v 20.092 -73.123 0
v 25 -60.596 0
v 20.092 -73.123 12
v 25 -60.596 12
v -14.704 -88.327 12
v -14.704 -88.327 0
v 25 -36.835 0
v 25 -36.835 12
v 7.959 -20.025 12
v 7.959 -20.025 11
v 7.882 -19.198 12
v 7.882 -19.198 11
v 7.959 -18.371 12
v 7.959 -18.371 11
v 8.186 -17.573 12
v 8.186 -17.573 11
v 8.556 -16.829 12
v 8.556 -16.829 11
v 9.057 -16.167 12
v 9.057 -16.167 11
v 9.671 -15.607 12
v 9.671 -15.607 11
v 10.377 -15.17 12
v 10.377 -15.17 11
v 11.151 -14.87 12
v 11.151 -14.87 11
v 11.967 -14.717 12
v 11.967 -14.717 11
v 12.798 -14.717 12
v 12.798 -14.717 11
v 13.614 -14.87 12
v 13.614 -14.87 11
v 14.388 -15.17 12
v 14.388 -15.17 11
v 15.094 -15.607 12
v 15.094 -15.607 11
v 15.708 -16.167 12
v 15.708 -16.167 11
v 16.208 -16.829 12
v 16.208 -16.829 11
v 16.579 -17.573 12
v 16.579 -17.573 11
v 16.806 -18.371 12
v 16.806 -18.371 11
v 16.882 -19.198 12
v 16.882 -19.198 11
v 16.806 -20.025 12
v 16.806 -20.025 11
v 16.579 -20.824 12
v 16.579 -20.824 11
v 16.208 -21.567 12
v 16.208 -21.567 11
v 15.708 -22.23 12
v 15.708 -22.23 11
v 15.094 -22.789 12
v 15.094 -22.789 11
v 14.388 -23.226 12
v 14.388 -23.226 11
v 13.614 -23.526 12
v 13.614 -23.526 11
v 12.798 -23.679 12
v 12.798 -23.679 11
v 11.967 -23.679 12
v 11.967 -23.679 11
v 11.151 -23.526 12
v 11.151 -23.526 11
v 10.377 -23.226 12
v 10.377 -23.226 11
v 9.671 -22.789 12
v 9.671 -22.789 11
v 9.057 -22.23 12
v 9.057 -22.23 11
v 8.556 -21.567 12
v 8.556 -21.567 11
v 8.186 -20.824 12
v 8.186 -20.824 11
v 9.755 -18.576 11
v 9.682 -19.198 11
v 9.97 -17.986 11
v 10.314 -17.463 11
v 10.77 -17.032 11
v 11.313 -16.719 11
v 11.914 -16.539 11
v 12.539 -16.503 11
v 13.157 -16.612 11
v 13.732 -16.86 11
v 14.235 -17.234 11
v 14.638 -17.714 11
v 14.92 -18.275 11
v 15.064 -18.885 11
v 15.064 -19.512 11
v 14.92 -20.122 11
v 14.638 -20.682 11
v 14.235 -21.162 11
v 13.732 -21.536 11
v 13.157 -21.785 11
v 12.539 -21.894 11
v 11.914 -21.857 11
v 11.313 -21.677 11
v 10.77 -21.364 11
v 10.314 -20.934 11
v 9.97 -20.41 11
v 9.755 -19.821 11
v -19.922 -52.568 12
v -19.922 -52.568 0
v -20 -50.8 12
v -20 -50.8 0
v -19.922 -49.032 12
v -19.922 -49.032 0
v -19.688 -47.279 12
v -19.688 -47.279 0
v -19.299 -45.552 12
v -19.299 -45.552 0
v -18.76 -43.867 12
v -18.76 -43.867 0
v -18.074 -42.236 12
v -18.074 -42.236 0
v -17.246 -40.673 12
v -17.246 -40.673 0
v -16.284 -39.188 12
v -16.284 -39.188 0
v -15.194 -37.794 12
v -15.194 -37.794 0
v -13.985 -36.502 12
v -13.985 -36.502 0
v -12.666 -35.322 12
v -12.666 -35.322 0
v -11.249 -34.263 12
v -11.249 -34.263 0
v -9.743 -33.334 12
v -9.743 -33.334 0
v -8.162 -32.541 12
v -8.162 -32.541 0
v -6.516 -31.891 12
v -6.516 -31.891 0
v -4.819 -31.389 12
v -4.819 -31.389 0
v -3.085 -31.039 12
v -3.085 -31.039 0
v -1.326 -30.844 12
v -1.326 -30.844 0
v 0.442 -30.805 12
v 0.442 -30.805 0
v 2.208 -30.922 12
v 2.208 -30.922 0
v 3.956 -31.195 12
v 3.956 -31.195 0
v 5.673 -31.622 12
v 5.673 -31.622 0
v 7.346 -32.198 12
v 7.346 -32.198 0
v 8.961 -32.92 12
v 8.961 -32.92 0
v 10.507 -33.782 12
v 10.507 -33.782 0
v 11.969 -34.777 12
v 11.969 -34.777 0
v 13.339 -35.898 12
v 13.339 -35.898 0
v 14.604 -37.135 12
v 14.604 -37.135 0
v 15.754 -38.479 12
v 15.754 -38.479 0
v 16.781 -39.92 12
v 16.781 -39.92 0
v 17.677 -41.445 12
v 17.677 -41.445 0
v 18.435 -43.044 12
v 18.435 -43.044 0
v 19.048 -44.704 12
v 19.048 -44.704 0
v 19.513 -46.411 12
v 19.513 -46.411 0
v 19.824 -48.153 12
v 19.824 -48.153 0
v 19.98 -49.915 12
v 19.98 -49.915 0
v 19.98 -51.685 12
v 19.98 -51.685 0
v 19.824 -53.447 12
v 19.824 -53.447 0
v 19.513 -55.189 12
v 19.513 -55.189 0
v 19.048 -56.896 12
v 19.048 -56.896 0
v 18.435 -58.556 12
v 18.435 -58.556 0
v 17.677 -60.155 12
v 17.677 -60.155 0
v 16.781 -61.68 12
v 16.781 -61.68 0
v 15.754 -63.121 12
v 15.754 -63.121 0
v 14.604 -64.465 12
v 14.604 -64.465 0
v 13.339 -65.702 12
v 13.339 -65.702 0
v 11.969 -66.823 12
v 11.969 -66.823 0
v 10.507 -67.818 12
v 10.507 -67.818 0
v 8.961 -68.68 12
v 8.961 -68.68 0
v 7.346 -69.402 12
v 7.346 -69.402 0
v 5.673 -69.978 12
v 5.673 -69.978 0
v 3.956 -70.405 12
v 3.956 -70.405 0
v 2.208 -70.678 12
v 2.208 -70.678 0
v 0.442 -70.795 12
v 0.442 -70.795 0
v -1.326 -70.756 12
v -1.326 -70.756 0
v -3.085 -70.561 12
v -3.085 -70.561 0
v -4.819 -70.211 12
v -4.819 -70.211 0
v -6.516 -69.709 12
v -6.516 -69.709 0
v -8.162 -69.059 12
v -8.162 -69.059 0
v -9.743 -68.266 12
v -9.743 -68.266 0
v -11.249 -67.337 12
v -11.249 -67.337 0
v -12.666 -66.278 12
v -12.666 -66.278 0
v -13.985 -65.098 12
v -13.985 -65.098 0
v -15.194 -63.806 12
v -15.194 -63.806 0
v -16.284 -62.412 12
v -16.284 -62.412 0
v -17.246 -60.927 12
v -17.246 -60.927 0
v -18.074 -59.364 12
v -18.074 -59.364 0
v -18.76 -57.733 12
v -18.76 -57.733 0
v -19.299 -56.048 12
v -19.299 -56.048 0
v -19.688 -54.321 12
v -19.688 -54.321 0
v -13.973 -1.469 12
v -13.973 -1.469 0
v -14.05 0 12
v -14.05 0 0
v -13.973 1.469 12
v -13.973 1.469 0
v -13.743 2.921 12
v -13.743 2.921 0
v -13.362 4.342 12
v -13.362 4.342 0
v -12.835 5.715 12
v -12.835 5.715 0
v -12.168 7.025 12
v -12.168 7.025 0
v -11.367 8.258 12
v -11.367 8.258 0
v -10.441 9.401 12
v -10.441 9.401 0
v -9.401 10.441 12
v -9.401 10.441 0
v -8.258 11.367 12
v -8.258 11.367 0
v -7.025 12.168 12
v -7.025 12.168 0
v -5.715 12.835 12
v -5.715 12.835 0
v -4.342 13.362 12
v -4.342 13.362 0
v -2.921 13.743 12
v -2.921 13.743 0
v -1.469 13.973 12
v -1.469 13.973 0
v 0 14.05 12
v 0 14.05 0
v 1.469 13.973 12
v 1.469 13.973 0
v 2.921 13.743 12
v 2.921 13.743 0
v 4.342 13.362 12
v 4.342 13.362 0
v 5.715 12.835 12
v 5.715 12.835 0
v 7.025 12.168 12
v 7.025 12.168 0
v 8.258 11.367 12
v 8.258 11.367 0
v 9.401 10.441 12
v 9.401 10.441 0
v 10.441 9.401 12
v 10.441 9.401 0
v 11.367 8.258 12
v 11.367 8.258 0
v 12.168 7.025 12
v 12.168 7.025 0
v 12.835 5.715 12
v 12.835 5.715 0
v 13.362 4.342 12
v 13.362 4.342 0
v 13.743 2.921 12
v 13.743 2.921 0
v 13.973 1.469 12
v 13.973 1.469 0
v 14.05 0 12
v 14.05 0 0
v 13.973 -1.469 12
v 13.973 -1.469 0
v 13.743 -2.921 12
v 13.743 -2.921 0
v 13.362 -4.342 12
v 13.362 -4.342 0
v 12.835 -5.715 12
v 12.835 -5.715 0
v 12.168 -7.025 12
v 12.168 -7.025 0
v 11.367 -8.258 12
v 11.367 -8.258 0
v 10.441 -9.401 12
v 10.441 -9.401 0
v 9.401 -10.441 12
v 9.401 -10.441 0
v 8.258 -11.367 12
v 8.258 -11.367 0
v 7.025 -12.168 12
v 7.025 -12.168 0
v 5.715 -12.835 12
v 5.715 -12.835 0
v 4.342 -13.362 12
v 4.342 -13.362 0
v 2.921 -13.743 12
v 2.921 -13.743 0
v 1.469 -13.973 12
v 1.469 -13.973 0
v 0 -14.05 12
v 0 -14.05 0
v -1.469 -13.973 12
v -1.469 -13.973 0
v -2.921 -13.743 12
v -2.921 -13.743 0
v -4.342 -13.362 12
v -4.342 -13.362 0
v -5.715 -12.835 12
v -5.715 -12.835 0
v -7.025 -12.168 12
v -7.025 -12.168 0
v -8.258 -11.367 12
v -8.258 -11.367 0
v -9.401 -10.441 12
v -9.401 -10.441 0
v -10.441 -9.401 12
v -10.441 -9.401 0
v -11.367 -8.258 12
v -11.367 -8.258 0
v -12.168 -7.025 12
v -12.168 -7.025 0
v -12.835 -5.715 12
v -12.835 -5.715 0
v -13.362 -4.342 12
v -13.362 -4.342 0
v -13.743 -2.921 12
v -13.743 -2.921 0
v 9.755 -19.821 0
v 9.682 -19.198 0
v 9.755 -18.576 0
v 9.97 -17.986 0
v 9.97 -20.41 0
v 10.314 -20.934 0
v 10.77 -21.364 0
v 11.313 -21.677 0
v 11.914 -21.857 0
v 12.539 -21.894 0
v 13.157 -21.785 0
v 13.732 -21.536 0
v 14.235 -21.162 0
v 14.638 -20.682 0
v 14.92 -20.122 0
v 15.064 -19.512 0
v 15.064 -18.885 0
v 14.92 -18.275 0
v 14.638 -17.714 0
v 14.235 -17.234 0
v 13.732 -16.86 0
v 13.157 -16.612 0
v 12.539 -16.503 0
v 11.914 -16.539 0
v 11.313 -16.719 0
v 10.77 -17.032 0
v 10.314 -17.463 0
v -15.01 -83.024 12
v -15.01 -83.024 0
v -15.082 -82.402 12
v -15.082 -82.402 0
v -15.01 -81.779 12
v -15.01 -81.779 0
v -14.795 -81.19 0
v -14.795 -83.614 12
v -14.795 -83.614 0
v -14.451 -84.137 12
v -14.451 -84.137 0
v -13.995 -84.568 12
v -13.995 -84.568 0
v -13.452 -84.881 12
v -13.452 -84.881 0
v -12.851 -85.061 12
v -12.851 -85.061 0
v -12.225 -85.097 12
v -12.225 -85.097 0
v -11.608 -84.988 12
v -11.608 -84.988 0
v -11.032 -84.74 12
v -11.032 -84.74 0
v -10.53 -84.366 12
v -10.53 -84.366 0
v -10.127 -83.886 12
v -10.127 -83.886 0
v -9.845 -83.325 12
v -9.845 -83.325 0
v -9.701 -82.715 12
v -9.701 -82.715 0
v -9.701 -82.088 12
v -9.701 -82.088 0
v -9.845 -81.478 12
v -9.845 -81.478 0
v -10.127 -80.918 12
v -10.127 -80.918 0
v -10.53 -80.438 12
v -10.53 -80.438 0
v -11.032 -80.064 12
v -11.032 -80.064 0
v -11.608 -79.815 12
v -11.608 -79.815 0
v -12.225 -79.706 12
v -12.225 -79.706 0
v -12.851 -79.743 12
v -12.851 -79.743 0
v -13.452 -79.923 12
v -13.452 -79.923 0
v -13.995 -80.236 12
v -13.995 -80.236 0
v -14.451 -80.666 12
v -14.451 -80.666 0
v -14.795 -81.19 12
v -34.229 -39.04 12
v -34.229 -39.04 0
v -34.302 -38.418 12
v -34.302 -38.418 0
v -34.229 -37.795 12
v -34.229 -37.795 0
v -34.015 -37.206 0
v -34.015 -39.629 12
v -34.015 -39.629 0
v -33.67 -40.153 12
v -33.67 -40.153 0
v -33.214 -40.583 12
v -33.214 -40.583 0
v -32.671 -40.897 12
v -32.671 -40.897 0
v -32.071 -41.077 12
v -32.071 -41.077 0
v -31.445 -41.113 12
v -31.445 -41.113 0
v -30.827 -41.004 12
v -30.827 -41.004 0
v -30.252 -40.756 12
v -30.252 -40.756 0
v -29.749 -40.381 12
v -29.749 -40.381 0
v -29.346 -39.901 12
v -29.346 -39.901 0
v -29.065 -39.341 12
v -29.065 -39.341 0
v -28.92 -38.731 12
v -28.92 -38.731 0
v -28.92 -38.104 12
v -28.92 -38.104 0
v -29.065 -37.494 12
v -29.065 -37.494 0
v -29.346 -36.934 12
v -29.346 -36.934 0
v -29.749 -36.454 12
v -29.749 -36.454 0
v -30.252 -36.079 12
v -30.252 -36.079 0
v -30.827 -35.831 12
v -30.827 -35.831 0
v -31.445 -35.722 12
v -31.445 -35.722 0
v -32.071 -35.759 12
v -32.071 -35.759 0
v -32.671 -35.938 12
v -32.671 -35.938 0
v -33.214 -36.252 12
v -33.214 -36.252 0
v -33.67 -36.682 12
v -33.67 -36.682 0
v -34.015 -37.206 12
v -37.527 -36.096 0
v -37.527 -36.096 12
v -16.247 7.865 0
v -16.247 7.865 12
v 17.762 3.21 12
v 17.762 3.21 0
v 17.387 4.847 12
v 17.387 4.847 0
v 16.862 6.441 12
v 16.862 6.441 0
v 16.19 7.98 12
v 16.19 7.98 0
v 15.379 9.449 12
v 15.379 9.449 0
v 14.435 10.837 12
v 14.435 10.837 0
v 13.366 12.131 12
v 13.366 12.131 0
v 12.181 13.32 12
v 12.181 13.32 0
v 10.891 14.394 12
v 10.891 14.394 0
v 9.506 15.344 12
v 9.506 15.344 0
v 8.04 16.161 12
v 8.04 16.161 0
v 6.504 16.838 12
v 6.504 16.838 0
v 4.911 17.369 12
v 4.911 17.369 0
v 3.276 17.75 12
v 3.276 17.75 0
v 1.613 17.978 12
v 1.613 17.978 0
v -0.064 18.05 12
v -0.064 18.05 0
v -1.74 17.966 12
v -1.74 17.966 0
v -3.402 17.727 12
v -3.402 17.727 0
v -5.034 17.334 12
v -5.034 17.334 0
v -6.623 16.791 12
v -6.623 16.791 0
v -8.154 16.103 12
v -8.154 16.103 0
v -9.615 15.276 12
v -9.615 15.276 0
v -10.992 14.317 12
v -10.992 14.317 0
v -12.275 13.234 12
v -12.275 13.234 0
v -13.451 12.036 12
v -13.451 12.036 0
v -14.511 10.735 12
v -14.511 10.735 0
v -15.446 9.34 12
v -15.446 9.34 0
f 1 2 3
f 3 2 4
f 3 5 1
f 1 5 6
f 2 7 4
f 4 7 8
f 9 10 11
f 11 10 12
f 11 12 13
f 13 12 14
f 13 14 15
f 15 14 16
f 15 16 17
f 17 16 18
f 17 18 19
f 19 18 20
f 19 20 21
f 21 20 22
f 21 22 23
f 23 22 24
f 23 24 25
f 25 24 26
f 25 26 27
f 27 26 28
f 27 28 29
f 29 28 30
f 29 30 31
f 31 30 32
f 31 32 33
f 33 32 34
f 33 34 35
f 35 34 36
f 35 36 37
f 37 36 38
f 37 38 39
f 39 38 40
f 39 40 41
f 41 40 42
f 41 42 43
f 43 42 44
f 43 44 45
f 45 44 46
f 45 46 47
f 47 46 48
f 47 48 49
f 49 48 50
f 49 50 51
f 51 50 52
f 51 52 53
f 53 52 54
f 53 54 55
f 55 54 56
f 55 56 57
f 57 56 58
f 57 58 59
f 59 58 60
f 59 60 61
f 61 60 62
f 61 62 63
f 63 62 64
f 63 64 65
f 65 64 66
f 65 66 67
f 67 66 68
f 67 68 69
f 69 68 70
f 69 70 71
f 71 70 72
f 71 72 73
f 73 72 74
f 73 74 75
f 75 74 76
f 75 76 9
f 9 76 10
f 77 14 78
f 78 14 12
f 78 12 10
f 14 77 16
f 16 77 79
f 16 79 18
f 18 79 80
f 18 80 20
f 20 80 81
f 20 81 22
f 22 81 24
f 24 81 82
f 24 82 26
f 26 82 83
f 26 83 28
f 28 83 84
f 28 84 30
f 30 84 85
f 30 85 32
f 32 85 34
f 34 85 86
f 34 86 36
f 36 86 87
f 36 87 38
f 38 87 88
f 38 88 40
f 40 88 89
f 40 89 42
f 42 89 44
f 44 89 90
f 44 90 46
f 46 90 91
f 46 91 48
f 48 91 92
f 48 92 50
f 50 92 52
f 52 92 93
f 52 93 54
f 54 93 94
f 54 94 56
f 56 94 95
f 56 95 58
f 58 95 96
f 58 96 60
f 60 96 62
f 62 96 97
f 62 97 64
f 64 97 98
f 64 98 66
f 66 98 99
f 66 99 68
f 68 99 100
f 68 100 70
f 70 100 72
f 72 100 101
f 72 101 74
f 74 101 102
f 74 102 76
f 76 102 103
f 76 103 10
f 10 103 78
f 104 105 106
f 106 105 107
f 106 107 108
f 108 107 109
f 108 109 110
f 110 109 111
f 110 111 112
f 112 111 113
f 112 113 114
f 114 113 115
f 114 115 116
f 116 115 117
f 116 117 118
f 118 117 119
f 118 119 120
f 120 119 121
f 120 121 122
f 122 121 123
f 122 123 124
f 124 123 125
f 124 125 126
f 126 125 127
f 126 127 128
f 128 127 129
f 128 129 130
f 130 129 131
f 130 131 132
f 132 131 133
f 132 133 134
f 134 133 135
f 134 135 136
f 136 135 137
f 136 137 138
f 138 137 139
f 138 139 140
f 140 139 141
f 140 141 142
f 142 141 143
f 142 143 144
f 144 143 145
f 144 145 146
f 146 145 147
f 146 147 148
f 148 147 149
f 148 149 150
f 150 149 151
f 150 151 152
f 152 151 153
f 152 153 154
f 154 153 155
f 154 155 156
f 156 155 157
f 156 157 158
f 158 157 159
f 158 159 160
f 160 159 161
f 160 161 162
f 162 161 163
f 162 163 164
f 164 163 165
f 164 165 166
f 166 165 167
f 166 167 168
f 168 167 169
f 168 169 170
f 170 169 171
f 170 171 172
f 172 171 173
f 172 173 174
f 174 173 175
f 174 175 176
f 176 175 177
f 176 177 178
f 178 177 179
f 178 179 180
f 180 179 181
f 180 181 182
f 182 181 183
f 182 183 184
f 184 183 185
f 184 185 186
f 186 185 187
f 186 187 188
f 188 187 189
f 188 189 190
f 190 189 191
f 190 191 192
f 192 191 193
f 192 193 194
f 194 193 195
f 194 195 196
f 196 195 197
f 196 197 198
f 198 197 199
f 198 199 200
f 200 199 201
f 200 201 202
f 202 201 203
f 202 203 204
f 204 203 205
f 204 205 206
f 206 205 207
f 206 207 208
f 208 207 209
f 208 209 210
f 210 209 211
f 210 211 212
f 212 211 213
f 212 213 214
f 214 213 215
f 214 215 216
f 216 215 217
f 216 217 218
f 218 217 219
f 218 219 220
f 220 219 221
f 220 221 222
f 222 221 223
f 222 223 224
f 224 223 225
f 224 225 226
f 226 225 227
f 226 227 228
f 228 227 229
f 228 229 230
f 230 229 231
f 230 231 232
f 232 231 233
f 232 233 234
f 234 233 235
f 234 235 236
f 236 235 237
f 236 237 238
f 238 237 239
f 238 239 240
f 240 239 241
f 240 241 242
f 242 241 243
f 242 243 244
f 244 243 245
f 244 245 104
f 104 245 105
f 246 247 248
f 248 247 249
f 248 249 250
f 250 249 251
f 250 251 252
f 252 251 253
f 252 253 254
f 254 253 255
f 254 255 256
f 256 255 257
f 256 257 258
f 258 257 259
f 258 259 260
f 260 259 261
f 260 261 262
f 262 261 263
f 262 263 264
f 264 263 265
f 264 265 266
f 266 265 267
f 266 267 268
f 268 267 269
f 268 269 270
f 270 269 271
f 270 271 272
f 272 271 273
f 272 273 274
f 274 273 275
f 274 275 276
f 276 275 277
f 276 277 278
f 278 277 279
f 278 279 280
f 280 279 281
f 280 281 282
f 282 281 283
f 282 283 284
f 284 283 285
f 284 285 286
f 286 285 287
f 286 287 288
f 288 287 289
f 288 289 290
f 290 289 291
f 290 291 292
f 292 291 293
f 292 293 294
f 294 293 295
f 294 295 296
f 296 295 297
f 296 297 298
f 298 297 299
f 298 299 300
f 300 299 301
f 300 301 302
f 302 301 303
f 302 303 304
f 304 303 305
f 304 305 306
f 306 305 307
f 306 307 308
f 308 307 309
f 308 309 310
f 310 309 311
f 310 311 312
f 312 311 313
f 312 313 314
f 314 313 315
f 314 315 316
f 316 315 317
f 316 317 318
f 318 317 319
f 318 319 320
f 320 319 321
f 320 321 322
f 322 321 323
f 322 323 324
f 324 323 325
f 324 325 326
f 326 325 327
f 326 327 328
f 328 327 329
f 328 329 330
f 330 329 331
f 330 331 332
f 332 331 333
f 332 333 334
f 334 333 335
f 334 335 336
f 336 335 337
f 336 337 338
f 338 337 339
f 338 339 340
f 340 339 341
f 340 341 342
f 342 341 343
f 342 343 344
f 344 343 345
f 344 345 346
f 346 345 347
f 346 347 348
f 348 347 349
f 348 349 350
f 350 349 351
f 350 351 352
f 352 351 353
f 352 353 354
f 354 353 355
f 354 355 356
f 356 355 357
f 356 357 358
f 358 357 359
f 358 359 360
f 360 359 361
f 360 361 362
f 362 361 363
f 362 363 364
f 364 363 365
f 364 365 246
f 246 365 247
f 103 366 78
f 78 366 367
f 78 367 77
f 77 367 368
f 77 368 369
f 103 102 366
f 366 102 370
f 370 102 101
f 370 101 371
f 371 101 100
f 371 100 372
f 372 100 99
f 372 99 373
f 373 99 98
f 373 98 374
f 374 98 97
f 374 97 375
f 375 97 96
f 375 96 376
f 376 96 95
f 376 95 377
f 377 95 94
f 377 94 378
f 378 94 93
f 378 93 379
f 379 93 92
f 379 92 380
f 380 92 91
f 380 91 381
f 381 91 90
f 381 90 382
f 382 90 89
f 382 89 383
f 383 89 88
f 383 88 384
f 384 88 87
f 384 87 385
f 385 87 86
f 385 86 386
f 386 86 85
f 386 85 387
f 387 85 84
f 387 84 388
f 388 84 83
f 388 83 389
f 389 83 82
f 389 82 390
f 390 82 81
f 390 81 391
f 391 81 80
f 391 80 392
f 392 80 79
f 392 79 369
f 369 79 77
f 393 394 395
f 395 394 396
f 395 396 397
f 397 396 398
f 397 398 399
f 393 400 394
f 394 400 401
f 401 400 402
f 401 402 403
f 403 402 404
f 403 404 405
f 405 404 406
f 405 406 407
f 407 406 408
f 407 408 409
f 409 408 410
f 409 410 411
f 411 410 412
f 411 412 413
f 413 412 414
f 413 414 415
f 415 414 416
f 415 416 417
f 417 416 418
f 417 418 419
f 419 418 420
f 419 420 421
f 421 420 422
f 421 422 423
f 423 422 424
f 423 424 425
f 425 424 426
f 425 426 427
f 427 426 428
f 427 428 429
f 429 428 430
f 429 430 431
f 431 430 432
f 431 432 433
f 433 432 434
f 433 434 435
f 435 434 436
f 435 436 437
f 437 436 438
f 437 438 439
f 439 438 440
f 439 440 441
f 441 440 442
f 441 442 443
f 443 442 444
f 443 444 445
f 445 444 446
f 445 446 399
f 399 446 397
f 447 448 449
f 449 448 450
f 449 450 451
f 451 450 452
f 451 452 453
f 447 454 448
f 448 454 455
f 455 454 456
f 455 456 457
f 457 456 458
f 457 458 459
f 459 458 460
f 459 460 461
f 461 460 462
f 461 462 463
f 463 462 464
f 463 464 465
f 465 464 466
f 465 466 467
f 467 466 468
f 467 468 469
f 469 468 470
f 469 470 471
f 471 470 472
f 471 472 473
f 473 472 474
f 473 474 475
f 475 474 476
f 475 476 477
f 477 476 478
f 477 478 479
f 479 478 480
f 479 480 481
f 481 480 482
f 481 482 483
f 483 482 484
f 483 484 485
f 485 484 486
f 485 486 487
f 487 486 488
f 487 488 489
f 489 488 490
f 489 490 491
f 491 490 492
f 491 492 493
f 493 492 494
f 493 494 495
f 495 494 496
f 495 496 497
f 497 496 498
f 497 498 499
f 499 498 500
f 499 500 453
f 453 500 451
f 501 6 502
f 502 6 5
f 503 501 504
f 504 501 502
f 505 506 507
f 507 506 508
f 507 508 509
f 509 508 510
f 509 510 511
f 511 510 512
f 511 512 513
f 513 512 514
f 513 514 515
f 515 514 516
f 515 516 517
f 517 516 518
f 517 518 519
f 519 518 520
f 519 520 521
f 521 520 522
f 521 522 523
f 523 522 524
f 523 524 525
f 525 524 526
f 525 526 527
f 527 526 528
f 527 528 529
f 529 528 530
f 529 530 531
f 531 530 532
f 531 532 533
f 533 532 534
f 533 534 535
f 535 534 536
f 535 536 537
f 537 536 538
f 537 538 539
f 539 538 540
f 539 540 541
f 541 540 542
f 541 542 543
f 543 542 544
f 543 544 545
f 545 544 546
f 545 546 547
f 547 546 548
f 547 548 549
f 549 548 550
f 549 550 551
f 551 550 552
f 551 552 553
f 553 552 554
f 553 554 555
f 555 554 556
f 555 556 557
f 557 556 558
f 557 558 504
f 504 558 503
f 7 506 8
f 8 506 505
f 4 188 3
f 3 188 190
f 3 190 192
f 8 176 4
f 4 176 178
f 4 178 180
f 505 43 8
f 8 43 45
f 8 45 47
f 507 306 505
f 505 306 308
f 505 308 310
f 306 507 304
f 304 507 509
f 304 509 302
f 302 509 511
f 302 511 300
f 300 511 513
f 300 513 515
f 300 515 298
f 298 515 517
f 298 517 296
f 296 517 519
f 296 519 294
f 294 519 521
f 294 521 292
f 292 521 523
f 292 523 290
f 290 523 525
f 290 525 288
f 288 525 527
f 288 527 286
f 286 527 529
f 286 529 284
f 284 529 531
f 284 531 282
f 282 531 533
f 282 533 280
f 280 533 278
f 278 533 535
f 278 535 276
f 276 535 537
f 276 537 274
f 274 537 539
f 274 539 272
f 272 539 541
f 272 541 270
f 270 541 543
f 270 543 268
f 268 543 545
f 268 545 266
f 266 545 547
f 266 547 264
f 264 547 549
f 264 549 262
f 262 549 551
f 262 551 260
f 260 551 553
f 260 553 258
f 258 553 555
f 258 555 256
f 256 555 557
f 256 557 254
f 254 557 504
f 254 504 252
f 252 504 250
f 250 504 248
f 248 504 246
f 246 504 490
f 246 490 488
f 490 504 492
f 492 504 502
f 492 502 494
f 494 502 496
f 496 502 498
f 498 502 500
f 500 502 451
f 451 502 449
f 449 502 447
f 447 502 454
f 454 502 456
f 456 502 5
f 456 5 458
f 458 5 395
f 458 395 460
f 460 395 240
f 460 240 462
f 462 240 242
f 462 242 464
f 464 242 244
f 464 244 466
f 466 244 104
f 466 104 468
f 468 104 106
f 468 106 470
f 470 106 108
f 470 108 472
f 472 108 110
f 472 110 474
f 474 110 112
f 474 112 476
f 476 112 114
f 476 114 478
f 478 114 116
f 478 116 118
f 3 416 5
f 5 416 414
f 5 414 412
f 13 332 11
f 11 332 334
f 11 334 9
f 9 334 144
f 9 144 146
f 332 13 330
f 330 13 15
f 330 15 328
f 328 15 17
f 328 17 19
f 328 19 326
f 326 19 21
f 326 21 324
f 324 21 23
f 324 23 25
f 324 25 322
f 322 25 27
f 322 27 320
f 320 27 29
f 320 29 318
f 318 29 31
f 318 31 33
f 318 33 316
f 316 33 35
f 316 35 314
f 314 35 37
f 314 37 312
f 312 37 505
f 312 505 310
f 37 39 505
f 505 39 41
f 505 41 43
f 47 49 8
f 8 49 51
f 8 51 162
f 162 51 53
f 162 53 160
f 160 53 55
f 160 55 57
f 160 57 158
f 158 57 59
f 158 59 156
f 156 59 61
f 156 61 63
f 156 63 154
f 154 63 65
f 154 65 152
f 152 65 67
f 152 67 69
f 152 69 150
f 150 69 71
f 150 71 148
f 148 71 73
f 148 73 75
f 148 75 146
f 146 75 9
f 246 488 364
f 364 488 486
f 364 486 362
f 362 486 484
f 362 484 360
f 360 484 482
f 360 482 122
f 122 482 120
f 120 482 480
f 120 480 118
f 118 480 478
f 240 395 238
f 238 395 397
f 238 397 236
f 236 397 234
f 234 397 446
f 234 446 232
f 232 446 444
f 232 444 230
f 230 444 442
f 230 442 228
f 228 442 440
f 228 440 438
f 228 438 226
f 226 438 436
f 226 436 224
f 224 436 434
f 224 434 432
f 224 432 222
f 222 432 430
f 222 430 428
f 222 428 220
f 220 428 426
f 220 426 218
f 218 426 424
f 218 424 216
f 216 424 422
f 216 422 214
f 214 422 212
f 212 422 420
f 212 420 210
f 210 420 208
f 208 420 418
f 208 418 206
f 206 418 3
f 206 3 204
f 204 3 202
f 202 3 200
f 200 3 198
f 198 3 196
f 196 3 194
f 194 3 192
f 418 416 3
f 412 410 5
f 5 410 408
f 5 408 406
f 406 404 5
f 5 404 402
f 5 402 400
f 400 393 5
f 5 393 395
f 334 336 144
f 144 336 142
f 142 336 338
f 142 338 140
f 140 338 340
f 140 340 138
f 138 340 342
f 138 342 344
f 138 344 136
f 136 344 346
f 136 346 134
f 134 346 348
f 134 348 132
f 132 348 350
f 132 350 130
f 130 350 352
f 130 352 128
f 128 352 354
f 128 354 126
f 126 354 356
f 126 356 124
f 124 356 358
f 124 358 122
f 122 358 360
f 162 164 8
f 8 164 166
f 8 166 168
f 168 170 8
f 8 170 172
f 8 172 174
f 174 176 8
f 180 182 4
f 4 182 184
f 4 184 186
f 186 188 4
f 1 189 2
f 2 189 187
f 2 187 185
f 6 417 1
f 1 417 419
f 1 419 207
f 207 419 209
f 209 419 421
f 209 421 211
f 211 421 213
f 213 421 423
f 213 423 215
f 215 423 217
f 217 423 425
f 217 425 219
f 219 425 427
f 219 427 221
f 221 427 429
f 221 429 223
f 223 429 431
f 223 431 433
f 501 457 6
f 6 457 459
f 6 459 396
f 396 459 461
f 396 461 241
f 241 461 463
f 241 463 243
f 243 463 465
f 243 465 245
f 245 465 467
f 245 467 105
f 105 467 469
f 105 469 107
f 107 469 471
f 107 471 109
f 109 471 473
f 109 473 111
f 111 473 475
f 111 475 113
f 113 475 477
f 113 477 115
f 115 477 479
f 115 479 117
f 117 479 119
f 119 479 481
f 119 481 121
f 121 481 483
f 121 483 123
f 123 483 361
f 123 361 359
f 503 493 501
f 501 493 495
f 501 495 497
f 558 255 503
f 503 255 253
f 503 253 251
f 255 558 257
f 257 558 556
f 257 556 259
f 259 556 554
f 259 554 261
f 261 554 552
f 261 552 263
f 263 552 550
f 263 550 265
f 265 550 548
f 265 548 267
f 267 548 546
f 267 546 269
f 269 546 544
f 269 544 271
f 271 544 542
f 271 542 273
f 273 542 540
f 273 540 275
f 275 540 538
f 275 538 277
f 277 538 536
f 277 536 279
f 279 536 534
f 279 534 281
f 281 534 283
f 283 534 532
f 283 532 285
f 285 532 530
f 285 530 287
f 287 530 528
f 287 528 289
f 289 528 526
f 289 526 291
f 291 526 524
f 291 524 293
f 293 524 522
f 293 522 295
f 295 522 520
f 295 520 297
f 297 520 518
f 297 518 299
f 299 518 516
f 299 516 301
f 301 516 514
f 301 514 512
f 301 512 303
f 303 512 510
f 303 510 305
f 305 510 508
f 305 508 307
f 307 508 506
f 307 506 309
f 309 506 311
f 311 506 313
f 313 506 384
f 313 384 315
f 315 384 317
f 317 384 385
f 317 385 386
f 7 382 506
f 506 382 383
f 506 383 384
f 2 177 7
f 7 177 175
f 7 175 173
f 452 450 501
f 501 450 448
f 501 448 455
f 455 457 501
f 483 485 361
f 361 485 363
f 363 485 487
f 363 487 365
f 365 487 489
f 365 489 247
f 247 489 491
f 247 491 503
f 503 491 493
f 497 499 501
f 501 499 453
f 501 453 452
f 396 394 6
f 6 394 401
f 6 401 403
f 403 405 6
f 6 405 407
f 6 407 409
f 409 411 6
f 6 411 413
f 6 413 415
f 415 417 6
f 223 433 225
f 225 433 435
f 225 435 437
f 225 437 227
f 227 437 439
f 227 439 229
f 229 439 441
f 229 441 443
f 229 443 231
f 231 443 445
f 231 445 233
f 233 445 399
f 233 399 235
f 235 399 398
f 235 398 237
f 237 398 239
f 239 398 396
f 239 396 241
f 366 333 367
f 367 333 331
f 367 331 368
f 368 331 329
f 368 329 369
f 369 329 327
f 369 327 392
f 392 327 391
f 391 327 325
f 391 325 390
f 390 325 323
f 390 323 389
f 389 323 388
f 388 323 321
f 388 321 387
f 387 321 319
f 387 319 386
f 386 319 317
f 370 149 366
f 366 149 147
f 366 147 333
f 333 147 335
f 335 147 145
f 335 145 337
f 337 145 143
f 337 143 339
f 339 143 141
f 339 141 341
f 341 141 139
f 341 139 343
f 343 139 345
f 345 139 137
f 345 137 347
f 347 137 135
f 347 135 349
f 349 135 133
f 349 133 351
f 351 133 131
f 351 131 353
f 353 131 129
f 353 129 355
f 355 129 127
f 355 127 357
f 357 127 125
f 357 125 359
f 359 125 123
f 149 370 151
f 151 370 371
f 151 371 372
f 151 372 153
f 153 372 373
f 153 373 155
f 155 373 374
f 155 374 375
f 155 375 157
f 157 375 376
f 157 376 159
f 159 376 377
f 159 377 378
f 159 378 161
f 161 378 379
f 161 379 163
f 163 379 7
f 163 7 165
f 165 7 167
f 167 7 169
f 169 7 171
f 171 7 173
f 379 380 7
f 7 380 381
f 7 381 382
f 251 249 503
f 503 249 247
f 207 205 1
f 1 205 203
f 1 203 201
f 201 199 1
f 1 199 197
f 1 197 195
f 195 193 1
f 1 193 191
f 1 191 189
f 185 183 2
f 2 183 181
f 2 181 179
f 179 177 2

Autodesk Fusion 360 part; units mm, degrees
sketch "Sketch1" plane through (0, 0, 0) normal (0, 0, 1) x (1, 0, 0)
  circle A0 centre (0, 0) radius 14.05
  circle A1 centre (0, 0) radius 18.05
  line L0 (0, 0) -> (0, -50.8) construction
  line L1 (14.7041, -13.2728) -> (-37.5272, -36.0959)
  line L2 (-37.5272, -36.0959) -> (-14.7041, -88.3272)
  line L3 (-14.7041, -88.3272) -> (37.5272, -65.5041)
  line L4 (37.5272, -65.5041) -> (14.7041, -13.2728)
  line L5 (-37.5272, -36.0959) -> (37.5272, -65.5041) construction
  line L6 (14.7041, -13.2728) -> (-14.7041, -88.3272) construction
  circle A2 centre (0, -50.8) radius 25 construction
  line L7 (25, -36.8353) -> (25, -70.978)
  circle A3 centre (0, -50.8) radius 20
  circle A4 centre (12.3824, -19.1982) radius 2.7
  circle A5 centre (-31.6018, -38.4176) radius 2.7
  circle A6 centre (-12.3824, -82.4018) radius 2.7
  circle A7 centre (31.6018, -63.1824) radius 2.7
  line L8 (25, -36.8353) -> (17.7622, 3.2103)
  line L9 (-37.5272, -36.0959) -> (-16.2465, 7.8647)
  circle A8 centre (0, 0) radius 25 construction
  circle A9 centre (12.3824, -19.1982) radius 4.5
  line L10 (25, -60.5957) -> (20.0915, -73.1228)
  point P0 (0, -50.8)
  dimension "d1" = 28.1
  dimension "d2" = 4
  dimension "d3" = 50.8
  dimension "d4" = 57
  dimension "d5" = 57
  dimension "d6" = 57
  dimension "d7" = 50
  dimension "d8" = 40
  dimension "d9" = 5.4
  dimension "d10" = 4.5
  dimension "d11" = 5.4
  dimension "d12" = 5.4
  dimension "d13" = 5.4
  dimension "d14" = 4.5
  dimension "d15" = 4.5
  dimension "d16" = 4.5
  dimension "d19" = 50
extrude "Extrude1" add sketch "Sketch1" along normal blind 12 contours A1 | A1 L1 L4 L8 | A1 L1 L9 | L1 L2 L3 L4 L7 A9 L10 | L1 L4 A9 | A9 | L3 L7 L10
extrude "Extrude2" cut sketch "Sketch1" along normal blind 1 from surface at 11 contours A9
extrude "Extrude3" cut sketch "Sketch1" along normal blind 12 contours L3 L7 L10
